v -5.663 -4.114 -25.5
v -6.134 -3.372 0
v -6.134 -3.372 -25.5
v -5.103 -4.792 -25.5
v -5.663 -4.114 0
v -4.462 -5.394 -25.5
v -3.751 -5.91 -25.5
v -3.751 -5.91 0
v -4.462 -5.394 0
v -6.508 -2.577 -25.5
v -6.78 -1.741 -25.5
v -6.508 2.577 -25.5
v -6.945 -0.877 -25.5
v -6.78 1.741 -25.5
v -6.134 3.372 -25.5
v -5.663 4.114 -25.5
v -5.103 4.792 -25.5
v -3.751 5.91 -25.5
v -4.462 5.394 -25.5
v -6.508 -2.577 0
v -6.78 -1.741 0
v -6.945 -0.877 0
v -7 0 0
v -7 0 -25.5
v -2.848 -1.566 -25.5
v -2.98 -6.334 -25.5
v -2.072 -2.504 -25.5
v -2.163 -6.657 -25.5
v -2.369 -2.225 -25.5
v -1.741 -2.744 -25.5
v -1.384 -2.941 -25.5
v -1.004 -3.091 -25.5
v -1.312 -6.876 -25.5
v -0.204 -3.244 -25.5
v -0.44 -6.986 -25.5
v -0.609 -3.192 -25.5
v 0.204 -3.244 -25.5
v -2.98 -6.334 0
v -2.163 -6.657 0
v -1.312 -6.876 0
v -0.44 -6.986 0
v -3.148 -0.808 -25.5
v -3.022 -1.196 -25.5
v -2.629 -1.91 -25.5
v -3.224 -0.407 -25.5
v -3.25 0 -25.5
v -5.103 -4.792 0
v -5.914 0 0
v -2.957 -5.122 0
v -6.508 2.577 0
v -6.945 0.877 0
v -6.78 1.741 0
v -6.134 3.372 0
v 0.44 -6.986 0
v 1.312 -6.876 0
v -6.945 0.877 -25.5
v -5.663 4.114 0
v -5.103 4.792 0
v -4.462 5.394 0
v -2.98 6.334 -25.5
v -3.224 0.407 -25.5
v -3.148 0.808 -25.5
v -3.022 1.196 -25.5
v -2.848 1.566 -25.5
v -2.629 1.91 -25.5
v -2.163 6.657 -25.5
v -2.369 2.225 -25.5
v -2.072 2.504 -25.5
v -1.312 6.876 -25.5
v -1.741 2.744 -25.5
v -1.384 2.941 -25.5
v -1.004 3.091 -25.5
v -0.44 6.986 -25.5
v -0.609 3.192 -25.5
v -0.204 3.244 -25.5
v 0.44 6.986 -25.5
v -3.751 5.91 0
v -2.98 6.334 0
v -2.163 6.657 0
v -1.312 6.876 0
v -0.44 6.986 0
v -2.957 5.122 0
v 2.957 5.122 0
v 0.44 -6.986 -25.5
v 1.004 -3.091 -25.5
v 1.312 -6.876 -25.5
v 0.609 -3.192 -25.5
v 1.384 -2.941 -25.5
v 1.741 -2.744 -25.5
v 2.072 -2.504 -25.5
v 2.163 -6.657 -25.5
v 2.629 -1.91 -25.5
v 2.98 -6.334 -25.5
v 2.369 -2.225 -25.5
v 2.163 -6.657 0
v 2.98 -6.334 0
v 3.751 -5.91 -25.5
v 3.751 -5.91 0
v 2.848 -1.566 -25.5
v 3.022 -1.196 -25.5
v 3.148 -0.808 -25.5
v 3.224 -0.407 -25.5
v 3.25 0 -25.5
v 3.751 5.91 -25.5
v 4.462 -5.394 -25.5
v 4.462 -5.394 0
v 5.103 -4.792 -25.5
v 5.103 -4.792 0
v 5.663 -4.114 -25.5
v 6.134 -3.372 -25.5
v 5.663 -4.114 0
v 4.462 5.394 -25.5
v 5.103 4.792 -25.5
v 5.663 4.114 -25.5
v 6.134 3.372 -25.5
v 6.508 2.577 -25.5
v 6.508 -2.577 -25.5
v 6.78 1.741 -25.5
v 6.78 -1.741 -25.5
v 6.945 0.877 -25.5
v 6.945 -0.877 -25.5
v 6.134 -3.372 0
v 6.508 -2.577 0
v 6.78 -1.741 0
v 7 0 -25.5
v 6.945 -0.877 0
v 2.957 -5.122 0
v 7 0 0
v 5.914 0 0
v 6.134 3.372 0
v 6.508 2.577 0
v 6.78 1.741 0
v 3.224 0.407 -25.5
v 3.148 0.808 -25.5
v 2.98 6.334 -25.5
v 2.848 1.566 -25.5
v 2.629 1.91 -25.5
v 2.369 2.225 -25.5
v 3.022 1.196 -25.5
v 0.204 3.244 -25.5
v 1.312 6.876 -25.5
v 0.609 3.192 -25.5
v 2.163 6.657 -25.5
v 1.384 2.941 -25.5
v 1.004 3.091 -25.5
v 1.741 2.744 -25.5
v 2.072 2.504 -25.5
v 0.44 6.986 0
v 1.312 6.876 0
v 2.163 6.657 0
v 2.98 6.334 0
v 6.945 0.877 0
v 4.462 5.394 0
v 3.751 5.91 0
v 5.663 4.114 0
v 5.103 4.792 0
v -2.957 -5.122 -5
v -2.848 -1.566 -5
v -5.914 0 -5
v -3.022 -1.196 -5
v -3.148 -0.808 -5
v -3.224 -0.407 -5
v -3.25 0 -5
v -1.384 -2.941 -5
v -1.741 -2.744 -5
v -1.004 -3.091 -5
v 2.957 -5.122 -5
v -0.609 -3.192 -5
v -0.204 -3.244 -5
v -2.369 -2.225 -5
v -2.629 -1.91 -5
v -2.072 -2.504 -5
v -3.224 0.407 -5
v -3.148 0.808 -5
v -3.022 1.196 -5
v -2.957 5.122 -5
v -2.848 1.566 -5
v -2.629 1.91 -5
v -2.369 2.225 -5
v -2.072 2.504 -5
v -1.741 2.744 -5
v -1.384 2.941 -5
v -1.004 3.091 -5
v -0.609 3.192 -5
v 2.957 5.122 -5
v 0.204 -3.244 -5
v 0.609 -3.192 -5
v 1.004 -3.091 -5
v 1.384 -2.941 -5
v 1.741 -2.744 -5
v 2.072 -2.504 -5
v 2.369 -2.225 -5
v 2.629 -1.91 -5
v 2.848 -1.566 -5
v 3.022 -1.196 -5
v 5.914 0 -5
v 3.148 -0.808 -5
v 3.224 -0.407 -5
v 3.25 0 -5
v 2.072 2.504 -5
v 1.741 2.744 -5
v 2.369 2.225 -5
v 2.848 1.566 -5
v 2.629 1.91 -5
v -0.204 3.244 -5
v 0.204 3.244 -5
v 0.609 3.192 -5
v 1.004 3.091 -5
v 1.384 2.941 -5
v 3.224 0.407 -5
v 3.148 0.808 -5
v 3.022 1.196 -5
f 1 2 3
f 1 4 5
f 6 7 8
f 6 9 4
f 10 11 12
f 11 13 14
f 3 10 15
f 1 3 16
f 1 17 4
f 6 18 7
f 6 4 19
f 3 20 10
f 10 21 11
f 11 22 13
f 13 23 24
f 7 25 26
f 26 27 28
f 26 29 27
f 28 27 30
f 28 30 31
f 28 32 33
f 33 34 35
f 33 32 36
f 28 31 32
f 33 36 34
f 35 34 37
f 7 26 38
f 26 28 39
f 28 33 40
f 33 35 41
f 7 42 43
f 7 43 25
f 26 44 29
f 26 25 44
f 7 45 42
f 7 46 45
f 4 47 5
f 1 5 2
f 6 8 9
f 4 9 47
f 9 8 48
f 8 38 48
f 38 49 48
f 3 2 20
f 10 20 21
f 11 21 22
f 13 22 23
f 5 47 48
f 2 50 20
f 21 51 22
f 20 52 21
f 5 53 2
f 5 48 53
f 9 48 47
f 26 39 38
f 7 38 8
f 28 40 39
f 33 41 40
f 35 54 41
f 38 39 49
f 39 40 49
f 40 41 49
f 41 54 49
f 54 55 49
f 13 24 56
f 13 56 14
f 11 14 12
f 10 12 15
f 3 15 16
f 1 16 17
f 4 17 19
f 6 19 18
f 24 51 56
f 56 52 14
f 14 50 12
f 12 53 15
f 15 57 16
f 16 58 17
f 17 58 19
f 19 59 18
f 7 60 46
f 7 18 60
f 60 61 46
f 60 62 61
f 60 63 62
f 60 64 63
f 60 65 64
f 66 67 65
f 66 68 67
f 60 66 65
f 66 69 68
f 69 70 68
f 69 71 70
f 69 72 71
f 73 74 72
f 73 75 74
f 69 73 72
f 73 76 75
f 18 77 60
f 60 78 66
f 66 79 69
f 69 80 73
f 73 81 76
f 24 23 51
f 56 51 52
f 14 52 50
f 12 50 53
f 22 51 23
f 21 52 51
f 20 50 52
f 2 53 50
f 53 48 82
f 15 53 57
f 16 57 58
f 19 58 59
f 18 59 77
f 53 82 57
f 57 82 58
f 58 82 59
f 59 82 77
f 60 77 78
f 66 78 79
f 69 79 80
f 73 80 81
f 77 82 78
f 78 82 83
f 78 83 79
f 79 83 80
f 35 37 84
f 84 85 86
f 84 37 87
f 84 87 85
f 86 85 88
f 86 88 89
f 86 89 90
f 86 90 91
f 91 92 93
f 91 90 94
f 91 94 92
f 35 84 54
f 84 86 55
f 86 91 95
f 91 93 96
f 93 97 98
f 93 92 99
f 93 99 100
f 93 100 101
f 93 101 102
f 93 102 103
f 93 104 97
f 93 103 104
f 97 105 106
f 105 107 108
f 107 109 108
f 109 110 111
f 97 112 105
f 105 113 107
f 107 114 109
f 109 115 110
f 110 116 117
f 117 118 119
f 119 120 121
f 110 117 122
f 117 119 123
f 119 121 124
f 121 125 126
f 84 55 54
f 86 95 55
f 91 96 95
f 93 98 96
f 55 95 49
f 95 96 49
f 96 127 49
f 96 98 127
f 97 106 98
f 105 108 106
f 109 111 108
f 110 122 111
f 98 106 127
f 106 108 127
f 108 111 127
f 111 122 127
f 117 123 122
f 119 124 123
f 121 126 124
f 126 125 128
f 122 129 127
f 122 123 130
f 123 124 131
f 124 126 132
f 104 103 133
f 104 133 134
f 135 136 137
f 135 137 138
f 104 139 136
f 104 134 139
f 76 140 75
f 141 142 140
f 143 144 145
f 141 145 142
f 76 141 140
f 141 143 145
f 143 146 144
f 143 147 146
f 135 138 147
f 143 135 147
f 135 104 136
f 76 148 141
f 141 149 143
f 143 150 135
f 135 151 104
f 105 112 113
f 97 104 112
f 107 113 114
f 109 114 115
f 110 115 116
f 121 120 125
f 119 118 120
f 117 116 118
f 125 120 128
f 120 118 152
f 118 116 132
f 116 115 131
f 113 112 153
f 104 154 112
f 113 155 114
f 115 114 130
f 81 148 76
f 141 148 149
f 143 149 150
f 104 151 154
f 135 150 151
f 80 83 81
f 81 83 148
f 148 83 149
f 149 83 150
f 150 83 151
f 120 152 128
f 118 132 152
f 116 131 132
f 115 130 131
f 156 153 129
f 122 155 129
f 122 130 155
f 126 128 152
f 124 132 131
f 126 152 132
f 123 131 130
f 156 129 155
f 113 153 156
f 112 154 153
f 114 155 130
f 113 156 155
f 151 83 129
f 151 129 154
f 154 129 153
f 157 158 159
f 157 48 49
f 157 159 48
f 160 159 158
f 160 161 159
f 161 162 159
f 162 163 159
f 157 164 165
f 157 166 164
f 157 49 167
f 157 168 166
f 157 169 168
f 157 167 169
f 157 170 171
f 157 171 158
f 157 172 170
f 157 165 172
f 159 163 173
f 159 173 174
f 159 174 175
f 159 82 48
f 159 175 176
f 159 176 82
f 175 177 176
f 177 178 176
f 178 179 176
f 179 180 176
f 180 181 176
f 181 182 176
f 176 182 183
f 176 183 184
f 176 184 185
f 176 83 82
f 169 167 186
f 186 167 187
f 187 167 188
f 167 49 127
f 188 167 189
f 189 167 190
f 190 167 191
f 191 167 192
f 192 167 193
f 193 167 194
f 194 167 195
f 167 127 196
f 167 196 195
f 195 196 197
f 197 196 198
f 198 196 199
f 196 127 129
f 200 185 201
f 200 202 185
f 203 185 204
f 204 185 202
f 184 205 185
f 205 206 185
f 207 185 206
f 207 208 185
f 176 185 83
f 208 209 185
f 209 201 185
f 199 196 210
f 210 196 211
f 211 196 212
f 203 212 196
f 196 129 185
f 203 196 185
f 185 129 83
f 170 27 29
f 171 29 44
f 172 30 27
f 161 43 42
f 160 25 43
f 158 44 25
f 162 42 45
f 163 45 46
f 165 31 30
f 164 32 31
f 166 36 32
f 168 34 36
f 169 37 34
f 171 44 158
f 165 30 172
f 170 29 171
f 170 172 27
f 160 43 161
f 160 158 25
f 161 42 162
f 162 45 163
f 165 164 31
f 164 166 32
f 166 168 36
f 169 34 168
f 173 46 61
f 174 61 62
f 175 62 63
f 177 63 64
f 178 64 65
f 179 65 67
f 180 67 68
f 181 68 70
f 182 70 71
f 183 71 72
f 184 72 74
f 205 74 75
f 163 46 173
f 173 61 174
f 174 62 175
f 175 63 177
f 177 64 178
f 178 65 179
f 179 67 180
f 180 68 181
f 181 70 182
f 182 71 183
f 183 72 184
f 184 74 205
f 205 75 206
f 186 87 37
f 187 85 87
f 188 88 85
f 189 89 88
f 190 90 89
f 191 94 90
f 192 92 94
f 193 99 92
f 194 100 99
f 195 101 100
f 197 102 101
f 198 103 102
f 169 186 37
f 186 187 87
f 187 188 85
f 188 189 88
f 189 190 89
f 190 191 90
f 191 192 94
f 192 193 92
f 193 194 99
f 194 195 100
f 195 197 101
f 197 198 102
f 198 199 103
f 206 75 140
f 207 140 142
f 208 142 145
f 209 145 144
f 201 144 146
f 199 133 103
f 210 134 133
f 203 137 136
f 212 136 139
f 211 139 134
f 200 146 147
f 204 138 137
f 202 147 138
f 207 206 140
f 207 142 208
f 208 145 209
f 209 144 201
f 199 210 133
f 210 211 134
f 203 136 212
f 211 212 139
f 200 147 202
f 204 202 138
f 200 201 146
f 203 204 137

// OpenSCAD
$fn = 50;

difference() {
	union() {
		translate(v = [0, 0, -25.5]) {
			cylinder(h = 25.5, r = 7.0);
		}
		#translate(v = [0, 0, -27.0]) {
			cylinder(h = 27, r = 2.875);
		}
	}
	union() {
		translate(v = [0, 0, 0]) {
			rotate(a = [0, 0, 0]) {
				difference() {
					union() {
						translate(v = [0, 0, -5]) {
							linear_extrude(height = 5) {
								polygon(points = [[5.914249999999999, 0.0], [2.957125, 5.1218907443321156], [-2.9571249999999982, 5.1218907443321156], [-5.914249999999999, 7.242867331857232e-16], [-2.9571250000000022, -5.121890744332115], [2.9571249999999956, -5.121890744332118]]);
							}
						}
					}
					union();
				}
			}
		}
		#translate(v = [0, 0, -100.0]) {
			cylinder(h = 200, r = 3.25);
		}
	}
}
